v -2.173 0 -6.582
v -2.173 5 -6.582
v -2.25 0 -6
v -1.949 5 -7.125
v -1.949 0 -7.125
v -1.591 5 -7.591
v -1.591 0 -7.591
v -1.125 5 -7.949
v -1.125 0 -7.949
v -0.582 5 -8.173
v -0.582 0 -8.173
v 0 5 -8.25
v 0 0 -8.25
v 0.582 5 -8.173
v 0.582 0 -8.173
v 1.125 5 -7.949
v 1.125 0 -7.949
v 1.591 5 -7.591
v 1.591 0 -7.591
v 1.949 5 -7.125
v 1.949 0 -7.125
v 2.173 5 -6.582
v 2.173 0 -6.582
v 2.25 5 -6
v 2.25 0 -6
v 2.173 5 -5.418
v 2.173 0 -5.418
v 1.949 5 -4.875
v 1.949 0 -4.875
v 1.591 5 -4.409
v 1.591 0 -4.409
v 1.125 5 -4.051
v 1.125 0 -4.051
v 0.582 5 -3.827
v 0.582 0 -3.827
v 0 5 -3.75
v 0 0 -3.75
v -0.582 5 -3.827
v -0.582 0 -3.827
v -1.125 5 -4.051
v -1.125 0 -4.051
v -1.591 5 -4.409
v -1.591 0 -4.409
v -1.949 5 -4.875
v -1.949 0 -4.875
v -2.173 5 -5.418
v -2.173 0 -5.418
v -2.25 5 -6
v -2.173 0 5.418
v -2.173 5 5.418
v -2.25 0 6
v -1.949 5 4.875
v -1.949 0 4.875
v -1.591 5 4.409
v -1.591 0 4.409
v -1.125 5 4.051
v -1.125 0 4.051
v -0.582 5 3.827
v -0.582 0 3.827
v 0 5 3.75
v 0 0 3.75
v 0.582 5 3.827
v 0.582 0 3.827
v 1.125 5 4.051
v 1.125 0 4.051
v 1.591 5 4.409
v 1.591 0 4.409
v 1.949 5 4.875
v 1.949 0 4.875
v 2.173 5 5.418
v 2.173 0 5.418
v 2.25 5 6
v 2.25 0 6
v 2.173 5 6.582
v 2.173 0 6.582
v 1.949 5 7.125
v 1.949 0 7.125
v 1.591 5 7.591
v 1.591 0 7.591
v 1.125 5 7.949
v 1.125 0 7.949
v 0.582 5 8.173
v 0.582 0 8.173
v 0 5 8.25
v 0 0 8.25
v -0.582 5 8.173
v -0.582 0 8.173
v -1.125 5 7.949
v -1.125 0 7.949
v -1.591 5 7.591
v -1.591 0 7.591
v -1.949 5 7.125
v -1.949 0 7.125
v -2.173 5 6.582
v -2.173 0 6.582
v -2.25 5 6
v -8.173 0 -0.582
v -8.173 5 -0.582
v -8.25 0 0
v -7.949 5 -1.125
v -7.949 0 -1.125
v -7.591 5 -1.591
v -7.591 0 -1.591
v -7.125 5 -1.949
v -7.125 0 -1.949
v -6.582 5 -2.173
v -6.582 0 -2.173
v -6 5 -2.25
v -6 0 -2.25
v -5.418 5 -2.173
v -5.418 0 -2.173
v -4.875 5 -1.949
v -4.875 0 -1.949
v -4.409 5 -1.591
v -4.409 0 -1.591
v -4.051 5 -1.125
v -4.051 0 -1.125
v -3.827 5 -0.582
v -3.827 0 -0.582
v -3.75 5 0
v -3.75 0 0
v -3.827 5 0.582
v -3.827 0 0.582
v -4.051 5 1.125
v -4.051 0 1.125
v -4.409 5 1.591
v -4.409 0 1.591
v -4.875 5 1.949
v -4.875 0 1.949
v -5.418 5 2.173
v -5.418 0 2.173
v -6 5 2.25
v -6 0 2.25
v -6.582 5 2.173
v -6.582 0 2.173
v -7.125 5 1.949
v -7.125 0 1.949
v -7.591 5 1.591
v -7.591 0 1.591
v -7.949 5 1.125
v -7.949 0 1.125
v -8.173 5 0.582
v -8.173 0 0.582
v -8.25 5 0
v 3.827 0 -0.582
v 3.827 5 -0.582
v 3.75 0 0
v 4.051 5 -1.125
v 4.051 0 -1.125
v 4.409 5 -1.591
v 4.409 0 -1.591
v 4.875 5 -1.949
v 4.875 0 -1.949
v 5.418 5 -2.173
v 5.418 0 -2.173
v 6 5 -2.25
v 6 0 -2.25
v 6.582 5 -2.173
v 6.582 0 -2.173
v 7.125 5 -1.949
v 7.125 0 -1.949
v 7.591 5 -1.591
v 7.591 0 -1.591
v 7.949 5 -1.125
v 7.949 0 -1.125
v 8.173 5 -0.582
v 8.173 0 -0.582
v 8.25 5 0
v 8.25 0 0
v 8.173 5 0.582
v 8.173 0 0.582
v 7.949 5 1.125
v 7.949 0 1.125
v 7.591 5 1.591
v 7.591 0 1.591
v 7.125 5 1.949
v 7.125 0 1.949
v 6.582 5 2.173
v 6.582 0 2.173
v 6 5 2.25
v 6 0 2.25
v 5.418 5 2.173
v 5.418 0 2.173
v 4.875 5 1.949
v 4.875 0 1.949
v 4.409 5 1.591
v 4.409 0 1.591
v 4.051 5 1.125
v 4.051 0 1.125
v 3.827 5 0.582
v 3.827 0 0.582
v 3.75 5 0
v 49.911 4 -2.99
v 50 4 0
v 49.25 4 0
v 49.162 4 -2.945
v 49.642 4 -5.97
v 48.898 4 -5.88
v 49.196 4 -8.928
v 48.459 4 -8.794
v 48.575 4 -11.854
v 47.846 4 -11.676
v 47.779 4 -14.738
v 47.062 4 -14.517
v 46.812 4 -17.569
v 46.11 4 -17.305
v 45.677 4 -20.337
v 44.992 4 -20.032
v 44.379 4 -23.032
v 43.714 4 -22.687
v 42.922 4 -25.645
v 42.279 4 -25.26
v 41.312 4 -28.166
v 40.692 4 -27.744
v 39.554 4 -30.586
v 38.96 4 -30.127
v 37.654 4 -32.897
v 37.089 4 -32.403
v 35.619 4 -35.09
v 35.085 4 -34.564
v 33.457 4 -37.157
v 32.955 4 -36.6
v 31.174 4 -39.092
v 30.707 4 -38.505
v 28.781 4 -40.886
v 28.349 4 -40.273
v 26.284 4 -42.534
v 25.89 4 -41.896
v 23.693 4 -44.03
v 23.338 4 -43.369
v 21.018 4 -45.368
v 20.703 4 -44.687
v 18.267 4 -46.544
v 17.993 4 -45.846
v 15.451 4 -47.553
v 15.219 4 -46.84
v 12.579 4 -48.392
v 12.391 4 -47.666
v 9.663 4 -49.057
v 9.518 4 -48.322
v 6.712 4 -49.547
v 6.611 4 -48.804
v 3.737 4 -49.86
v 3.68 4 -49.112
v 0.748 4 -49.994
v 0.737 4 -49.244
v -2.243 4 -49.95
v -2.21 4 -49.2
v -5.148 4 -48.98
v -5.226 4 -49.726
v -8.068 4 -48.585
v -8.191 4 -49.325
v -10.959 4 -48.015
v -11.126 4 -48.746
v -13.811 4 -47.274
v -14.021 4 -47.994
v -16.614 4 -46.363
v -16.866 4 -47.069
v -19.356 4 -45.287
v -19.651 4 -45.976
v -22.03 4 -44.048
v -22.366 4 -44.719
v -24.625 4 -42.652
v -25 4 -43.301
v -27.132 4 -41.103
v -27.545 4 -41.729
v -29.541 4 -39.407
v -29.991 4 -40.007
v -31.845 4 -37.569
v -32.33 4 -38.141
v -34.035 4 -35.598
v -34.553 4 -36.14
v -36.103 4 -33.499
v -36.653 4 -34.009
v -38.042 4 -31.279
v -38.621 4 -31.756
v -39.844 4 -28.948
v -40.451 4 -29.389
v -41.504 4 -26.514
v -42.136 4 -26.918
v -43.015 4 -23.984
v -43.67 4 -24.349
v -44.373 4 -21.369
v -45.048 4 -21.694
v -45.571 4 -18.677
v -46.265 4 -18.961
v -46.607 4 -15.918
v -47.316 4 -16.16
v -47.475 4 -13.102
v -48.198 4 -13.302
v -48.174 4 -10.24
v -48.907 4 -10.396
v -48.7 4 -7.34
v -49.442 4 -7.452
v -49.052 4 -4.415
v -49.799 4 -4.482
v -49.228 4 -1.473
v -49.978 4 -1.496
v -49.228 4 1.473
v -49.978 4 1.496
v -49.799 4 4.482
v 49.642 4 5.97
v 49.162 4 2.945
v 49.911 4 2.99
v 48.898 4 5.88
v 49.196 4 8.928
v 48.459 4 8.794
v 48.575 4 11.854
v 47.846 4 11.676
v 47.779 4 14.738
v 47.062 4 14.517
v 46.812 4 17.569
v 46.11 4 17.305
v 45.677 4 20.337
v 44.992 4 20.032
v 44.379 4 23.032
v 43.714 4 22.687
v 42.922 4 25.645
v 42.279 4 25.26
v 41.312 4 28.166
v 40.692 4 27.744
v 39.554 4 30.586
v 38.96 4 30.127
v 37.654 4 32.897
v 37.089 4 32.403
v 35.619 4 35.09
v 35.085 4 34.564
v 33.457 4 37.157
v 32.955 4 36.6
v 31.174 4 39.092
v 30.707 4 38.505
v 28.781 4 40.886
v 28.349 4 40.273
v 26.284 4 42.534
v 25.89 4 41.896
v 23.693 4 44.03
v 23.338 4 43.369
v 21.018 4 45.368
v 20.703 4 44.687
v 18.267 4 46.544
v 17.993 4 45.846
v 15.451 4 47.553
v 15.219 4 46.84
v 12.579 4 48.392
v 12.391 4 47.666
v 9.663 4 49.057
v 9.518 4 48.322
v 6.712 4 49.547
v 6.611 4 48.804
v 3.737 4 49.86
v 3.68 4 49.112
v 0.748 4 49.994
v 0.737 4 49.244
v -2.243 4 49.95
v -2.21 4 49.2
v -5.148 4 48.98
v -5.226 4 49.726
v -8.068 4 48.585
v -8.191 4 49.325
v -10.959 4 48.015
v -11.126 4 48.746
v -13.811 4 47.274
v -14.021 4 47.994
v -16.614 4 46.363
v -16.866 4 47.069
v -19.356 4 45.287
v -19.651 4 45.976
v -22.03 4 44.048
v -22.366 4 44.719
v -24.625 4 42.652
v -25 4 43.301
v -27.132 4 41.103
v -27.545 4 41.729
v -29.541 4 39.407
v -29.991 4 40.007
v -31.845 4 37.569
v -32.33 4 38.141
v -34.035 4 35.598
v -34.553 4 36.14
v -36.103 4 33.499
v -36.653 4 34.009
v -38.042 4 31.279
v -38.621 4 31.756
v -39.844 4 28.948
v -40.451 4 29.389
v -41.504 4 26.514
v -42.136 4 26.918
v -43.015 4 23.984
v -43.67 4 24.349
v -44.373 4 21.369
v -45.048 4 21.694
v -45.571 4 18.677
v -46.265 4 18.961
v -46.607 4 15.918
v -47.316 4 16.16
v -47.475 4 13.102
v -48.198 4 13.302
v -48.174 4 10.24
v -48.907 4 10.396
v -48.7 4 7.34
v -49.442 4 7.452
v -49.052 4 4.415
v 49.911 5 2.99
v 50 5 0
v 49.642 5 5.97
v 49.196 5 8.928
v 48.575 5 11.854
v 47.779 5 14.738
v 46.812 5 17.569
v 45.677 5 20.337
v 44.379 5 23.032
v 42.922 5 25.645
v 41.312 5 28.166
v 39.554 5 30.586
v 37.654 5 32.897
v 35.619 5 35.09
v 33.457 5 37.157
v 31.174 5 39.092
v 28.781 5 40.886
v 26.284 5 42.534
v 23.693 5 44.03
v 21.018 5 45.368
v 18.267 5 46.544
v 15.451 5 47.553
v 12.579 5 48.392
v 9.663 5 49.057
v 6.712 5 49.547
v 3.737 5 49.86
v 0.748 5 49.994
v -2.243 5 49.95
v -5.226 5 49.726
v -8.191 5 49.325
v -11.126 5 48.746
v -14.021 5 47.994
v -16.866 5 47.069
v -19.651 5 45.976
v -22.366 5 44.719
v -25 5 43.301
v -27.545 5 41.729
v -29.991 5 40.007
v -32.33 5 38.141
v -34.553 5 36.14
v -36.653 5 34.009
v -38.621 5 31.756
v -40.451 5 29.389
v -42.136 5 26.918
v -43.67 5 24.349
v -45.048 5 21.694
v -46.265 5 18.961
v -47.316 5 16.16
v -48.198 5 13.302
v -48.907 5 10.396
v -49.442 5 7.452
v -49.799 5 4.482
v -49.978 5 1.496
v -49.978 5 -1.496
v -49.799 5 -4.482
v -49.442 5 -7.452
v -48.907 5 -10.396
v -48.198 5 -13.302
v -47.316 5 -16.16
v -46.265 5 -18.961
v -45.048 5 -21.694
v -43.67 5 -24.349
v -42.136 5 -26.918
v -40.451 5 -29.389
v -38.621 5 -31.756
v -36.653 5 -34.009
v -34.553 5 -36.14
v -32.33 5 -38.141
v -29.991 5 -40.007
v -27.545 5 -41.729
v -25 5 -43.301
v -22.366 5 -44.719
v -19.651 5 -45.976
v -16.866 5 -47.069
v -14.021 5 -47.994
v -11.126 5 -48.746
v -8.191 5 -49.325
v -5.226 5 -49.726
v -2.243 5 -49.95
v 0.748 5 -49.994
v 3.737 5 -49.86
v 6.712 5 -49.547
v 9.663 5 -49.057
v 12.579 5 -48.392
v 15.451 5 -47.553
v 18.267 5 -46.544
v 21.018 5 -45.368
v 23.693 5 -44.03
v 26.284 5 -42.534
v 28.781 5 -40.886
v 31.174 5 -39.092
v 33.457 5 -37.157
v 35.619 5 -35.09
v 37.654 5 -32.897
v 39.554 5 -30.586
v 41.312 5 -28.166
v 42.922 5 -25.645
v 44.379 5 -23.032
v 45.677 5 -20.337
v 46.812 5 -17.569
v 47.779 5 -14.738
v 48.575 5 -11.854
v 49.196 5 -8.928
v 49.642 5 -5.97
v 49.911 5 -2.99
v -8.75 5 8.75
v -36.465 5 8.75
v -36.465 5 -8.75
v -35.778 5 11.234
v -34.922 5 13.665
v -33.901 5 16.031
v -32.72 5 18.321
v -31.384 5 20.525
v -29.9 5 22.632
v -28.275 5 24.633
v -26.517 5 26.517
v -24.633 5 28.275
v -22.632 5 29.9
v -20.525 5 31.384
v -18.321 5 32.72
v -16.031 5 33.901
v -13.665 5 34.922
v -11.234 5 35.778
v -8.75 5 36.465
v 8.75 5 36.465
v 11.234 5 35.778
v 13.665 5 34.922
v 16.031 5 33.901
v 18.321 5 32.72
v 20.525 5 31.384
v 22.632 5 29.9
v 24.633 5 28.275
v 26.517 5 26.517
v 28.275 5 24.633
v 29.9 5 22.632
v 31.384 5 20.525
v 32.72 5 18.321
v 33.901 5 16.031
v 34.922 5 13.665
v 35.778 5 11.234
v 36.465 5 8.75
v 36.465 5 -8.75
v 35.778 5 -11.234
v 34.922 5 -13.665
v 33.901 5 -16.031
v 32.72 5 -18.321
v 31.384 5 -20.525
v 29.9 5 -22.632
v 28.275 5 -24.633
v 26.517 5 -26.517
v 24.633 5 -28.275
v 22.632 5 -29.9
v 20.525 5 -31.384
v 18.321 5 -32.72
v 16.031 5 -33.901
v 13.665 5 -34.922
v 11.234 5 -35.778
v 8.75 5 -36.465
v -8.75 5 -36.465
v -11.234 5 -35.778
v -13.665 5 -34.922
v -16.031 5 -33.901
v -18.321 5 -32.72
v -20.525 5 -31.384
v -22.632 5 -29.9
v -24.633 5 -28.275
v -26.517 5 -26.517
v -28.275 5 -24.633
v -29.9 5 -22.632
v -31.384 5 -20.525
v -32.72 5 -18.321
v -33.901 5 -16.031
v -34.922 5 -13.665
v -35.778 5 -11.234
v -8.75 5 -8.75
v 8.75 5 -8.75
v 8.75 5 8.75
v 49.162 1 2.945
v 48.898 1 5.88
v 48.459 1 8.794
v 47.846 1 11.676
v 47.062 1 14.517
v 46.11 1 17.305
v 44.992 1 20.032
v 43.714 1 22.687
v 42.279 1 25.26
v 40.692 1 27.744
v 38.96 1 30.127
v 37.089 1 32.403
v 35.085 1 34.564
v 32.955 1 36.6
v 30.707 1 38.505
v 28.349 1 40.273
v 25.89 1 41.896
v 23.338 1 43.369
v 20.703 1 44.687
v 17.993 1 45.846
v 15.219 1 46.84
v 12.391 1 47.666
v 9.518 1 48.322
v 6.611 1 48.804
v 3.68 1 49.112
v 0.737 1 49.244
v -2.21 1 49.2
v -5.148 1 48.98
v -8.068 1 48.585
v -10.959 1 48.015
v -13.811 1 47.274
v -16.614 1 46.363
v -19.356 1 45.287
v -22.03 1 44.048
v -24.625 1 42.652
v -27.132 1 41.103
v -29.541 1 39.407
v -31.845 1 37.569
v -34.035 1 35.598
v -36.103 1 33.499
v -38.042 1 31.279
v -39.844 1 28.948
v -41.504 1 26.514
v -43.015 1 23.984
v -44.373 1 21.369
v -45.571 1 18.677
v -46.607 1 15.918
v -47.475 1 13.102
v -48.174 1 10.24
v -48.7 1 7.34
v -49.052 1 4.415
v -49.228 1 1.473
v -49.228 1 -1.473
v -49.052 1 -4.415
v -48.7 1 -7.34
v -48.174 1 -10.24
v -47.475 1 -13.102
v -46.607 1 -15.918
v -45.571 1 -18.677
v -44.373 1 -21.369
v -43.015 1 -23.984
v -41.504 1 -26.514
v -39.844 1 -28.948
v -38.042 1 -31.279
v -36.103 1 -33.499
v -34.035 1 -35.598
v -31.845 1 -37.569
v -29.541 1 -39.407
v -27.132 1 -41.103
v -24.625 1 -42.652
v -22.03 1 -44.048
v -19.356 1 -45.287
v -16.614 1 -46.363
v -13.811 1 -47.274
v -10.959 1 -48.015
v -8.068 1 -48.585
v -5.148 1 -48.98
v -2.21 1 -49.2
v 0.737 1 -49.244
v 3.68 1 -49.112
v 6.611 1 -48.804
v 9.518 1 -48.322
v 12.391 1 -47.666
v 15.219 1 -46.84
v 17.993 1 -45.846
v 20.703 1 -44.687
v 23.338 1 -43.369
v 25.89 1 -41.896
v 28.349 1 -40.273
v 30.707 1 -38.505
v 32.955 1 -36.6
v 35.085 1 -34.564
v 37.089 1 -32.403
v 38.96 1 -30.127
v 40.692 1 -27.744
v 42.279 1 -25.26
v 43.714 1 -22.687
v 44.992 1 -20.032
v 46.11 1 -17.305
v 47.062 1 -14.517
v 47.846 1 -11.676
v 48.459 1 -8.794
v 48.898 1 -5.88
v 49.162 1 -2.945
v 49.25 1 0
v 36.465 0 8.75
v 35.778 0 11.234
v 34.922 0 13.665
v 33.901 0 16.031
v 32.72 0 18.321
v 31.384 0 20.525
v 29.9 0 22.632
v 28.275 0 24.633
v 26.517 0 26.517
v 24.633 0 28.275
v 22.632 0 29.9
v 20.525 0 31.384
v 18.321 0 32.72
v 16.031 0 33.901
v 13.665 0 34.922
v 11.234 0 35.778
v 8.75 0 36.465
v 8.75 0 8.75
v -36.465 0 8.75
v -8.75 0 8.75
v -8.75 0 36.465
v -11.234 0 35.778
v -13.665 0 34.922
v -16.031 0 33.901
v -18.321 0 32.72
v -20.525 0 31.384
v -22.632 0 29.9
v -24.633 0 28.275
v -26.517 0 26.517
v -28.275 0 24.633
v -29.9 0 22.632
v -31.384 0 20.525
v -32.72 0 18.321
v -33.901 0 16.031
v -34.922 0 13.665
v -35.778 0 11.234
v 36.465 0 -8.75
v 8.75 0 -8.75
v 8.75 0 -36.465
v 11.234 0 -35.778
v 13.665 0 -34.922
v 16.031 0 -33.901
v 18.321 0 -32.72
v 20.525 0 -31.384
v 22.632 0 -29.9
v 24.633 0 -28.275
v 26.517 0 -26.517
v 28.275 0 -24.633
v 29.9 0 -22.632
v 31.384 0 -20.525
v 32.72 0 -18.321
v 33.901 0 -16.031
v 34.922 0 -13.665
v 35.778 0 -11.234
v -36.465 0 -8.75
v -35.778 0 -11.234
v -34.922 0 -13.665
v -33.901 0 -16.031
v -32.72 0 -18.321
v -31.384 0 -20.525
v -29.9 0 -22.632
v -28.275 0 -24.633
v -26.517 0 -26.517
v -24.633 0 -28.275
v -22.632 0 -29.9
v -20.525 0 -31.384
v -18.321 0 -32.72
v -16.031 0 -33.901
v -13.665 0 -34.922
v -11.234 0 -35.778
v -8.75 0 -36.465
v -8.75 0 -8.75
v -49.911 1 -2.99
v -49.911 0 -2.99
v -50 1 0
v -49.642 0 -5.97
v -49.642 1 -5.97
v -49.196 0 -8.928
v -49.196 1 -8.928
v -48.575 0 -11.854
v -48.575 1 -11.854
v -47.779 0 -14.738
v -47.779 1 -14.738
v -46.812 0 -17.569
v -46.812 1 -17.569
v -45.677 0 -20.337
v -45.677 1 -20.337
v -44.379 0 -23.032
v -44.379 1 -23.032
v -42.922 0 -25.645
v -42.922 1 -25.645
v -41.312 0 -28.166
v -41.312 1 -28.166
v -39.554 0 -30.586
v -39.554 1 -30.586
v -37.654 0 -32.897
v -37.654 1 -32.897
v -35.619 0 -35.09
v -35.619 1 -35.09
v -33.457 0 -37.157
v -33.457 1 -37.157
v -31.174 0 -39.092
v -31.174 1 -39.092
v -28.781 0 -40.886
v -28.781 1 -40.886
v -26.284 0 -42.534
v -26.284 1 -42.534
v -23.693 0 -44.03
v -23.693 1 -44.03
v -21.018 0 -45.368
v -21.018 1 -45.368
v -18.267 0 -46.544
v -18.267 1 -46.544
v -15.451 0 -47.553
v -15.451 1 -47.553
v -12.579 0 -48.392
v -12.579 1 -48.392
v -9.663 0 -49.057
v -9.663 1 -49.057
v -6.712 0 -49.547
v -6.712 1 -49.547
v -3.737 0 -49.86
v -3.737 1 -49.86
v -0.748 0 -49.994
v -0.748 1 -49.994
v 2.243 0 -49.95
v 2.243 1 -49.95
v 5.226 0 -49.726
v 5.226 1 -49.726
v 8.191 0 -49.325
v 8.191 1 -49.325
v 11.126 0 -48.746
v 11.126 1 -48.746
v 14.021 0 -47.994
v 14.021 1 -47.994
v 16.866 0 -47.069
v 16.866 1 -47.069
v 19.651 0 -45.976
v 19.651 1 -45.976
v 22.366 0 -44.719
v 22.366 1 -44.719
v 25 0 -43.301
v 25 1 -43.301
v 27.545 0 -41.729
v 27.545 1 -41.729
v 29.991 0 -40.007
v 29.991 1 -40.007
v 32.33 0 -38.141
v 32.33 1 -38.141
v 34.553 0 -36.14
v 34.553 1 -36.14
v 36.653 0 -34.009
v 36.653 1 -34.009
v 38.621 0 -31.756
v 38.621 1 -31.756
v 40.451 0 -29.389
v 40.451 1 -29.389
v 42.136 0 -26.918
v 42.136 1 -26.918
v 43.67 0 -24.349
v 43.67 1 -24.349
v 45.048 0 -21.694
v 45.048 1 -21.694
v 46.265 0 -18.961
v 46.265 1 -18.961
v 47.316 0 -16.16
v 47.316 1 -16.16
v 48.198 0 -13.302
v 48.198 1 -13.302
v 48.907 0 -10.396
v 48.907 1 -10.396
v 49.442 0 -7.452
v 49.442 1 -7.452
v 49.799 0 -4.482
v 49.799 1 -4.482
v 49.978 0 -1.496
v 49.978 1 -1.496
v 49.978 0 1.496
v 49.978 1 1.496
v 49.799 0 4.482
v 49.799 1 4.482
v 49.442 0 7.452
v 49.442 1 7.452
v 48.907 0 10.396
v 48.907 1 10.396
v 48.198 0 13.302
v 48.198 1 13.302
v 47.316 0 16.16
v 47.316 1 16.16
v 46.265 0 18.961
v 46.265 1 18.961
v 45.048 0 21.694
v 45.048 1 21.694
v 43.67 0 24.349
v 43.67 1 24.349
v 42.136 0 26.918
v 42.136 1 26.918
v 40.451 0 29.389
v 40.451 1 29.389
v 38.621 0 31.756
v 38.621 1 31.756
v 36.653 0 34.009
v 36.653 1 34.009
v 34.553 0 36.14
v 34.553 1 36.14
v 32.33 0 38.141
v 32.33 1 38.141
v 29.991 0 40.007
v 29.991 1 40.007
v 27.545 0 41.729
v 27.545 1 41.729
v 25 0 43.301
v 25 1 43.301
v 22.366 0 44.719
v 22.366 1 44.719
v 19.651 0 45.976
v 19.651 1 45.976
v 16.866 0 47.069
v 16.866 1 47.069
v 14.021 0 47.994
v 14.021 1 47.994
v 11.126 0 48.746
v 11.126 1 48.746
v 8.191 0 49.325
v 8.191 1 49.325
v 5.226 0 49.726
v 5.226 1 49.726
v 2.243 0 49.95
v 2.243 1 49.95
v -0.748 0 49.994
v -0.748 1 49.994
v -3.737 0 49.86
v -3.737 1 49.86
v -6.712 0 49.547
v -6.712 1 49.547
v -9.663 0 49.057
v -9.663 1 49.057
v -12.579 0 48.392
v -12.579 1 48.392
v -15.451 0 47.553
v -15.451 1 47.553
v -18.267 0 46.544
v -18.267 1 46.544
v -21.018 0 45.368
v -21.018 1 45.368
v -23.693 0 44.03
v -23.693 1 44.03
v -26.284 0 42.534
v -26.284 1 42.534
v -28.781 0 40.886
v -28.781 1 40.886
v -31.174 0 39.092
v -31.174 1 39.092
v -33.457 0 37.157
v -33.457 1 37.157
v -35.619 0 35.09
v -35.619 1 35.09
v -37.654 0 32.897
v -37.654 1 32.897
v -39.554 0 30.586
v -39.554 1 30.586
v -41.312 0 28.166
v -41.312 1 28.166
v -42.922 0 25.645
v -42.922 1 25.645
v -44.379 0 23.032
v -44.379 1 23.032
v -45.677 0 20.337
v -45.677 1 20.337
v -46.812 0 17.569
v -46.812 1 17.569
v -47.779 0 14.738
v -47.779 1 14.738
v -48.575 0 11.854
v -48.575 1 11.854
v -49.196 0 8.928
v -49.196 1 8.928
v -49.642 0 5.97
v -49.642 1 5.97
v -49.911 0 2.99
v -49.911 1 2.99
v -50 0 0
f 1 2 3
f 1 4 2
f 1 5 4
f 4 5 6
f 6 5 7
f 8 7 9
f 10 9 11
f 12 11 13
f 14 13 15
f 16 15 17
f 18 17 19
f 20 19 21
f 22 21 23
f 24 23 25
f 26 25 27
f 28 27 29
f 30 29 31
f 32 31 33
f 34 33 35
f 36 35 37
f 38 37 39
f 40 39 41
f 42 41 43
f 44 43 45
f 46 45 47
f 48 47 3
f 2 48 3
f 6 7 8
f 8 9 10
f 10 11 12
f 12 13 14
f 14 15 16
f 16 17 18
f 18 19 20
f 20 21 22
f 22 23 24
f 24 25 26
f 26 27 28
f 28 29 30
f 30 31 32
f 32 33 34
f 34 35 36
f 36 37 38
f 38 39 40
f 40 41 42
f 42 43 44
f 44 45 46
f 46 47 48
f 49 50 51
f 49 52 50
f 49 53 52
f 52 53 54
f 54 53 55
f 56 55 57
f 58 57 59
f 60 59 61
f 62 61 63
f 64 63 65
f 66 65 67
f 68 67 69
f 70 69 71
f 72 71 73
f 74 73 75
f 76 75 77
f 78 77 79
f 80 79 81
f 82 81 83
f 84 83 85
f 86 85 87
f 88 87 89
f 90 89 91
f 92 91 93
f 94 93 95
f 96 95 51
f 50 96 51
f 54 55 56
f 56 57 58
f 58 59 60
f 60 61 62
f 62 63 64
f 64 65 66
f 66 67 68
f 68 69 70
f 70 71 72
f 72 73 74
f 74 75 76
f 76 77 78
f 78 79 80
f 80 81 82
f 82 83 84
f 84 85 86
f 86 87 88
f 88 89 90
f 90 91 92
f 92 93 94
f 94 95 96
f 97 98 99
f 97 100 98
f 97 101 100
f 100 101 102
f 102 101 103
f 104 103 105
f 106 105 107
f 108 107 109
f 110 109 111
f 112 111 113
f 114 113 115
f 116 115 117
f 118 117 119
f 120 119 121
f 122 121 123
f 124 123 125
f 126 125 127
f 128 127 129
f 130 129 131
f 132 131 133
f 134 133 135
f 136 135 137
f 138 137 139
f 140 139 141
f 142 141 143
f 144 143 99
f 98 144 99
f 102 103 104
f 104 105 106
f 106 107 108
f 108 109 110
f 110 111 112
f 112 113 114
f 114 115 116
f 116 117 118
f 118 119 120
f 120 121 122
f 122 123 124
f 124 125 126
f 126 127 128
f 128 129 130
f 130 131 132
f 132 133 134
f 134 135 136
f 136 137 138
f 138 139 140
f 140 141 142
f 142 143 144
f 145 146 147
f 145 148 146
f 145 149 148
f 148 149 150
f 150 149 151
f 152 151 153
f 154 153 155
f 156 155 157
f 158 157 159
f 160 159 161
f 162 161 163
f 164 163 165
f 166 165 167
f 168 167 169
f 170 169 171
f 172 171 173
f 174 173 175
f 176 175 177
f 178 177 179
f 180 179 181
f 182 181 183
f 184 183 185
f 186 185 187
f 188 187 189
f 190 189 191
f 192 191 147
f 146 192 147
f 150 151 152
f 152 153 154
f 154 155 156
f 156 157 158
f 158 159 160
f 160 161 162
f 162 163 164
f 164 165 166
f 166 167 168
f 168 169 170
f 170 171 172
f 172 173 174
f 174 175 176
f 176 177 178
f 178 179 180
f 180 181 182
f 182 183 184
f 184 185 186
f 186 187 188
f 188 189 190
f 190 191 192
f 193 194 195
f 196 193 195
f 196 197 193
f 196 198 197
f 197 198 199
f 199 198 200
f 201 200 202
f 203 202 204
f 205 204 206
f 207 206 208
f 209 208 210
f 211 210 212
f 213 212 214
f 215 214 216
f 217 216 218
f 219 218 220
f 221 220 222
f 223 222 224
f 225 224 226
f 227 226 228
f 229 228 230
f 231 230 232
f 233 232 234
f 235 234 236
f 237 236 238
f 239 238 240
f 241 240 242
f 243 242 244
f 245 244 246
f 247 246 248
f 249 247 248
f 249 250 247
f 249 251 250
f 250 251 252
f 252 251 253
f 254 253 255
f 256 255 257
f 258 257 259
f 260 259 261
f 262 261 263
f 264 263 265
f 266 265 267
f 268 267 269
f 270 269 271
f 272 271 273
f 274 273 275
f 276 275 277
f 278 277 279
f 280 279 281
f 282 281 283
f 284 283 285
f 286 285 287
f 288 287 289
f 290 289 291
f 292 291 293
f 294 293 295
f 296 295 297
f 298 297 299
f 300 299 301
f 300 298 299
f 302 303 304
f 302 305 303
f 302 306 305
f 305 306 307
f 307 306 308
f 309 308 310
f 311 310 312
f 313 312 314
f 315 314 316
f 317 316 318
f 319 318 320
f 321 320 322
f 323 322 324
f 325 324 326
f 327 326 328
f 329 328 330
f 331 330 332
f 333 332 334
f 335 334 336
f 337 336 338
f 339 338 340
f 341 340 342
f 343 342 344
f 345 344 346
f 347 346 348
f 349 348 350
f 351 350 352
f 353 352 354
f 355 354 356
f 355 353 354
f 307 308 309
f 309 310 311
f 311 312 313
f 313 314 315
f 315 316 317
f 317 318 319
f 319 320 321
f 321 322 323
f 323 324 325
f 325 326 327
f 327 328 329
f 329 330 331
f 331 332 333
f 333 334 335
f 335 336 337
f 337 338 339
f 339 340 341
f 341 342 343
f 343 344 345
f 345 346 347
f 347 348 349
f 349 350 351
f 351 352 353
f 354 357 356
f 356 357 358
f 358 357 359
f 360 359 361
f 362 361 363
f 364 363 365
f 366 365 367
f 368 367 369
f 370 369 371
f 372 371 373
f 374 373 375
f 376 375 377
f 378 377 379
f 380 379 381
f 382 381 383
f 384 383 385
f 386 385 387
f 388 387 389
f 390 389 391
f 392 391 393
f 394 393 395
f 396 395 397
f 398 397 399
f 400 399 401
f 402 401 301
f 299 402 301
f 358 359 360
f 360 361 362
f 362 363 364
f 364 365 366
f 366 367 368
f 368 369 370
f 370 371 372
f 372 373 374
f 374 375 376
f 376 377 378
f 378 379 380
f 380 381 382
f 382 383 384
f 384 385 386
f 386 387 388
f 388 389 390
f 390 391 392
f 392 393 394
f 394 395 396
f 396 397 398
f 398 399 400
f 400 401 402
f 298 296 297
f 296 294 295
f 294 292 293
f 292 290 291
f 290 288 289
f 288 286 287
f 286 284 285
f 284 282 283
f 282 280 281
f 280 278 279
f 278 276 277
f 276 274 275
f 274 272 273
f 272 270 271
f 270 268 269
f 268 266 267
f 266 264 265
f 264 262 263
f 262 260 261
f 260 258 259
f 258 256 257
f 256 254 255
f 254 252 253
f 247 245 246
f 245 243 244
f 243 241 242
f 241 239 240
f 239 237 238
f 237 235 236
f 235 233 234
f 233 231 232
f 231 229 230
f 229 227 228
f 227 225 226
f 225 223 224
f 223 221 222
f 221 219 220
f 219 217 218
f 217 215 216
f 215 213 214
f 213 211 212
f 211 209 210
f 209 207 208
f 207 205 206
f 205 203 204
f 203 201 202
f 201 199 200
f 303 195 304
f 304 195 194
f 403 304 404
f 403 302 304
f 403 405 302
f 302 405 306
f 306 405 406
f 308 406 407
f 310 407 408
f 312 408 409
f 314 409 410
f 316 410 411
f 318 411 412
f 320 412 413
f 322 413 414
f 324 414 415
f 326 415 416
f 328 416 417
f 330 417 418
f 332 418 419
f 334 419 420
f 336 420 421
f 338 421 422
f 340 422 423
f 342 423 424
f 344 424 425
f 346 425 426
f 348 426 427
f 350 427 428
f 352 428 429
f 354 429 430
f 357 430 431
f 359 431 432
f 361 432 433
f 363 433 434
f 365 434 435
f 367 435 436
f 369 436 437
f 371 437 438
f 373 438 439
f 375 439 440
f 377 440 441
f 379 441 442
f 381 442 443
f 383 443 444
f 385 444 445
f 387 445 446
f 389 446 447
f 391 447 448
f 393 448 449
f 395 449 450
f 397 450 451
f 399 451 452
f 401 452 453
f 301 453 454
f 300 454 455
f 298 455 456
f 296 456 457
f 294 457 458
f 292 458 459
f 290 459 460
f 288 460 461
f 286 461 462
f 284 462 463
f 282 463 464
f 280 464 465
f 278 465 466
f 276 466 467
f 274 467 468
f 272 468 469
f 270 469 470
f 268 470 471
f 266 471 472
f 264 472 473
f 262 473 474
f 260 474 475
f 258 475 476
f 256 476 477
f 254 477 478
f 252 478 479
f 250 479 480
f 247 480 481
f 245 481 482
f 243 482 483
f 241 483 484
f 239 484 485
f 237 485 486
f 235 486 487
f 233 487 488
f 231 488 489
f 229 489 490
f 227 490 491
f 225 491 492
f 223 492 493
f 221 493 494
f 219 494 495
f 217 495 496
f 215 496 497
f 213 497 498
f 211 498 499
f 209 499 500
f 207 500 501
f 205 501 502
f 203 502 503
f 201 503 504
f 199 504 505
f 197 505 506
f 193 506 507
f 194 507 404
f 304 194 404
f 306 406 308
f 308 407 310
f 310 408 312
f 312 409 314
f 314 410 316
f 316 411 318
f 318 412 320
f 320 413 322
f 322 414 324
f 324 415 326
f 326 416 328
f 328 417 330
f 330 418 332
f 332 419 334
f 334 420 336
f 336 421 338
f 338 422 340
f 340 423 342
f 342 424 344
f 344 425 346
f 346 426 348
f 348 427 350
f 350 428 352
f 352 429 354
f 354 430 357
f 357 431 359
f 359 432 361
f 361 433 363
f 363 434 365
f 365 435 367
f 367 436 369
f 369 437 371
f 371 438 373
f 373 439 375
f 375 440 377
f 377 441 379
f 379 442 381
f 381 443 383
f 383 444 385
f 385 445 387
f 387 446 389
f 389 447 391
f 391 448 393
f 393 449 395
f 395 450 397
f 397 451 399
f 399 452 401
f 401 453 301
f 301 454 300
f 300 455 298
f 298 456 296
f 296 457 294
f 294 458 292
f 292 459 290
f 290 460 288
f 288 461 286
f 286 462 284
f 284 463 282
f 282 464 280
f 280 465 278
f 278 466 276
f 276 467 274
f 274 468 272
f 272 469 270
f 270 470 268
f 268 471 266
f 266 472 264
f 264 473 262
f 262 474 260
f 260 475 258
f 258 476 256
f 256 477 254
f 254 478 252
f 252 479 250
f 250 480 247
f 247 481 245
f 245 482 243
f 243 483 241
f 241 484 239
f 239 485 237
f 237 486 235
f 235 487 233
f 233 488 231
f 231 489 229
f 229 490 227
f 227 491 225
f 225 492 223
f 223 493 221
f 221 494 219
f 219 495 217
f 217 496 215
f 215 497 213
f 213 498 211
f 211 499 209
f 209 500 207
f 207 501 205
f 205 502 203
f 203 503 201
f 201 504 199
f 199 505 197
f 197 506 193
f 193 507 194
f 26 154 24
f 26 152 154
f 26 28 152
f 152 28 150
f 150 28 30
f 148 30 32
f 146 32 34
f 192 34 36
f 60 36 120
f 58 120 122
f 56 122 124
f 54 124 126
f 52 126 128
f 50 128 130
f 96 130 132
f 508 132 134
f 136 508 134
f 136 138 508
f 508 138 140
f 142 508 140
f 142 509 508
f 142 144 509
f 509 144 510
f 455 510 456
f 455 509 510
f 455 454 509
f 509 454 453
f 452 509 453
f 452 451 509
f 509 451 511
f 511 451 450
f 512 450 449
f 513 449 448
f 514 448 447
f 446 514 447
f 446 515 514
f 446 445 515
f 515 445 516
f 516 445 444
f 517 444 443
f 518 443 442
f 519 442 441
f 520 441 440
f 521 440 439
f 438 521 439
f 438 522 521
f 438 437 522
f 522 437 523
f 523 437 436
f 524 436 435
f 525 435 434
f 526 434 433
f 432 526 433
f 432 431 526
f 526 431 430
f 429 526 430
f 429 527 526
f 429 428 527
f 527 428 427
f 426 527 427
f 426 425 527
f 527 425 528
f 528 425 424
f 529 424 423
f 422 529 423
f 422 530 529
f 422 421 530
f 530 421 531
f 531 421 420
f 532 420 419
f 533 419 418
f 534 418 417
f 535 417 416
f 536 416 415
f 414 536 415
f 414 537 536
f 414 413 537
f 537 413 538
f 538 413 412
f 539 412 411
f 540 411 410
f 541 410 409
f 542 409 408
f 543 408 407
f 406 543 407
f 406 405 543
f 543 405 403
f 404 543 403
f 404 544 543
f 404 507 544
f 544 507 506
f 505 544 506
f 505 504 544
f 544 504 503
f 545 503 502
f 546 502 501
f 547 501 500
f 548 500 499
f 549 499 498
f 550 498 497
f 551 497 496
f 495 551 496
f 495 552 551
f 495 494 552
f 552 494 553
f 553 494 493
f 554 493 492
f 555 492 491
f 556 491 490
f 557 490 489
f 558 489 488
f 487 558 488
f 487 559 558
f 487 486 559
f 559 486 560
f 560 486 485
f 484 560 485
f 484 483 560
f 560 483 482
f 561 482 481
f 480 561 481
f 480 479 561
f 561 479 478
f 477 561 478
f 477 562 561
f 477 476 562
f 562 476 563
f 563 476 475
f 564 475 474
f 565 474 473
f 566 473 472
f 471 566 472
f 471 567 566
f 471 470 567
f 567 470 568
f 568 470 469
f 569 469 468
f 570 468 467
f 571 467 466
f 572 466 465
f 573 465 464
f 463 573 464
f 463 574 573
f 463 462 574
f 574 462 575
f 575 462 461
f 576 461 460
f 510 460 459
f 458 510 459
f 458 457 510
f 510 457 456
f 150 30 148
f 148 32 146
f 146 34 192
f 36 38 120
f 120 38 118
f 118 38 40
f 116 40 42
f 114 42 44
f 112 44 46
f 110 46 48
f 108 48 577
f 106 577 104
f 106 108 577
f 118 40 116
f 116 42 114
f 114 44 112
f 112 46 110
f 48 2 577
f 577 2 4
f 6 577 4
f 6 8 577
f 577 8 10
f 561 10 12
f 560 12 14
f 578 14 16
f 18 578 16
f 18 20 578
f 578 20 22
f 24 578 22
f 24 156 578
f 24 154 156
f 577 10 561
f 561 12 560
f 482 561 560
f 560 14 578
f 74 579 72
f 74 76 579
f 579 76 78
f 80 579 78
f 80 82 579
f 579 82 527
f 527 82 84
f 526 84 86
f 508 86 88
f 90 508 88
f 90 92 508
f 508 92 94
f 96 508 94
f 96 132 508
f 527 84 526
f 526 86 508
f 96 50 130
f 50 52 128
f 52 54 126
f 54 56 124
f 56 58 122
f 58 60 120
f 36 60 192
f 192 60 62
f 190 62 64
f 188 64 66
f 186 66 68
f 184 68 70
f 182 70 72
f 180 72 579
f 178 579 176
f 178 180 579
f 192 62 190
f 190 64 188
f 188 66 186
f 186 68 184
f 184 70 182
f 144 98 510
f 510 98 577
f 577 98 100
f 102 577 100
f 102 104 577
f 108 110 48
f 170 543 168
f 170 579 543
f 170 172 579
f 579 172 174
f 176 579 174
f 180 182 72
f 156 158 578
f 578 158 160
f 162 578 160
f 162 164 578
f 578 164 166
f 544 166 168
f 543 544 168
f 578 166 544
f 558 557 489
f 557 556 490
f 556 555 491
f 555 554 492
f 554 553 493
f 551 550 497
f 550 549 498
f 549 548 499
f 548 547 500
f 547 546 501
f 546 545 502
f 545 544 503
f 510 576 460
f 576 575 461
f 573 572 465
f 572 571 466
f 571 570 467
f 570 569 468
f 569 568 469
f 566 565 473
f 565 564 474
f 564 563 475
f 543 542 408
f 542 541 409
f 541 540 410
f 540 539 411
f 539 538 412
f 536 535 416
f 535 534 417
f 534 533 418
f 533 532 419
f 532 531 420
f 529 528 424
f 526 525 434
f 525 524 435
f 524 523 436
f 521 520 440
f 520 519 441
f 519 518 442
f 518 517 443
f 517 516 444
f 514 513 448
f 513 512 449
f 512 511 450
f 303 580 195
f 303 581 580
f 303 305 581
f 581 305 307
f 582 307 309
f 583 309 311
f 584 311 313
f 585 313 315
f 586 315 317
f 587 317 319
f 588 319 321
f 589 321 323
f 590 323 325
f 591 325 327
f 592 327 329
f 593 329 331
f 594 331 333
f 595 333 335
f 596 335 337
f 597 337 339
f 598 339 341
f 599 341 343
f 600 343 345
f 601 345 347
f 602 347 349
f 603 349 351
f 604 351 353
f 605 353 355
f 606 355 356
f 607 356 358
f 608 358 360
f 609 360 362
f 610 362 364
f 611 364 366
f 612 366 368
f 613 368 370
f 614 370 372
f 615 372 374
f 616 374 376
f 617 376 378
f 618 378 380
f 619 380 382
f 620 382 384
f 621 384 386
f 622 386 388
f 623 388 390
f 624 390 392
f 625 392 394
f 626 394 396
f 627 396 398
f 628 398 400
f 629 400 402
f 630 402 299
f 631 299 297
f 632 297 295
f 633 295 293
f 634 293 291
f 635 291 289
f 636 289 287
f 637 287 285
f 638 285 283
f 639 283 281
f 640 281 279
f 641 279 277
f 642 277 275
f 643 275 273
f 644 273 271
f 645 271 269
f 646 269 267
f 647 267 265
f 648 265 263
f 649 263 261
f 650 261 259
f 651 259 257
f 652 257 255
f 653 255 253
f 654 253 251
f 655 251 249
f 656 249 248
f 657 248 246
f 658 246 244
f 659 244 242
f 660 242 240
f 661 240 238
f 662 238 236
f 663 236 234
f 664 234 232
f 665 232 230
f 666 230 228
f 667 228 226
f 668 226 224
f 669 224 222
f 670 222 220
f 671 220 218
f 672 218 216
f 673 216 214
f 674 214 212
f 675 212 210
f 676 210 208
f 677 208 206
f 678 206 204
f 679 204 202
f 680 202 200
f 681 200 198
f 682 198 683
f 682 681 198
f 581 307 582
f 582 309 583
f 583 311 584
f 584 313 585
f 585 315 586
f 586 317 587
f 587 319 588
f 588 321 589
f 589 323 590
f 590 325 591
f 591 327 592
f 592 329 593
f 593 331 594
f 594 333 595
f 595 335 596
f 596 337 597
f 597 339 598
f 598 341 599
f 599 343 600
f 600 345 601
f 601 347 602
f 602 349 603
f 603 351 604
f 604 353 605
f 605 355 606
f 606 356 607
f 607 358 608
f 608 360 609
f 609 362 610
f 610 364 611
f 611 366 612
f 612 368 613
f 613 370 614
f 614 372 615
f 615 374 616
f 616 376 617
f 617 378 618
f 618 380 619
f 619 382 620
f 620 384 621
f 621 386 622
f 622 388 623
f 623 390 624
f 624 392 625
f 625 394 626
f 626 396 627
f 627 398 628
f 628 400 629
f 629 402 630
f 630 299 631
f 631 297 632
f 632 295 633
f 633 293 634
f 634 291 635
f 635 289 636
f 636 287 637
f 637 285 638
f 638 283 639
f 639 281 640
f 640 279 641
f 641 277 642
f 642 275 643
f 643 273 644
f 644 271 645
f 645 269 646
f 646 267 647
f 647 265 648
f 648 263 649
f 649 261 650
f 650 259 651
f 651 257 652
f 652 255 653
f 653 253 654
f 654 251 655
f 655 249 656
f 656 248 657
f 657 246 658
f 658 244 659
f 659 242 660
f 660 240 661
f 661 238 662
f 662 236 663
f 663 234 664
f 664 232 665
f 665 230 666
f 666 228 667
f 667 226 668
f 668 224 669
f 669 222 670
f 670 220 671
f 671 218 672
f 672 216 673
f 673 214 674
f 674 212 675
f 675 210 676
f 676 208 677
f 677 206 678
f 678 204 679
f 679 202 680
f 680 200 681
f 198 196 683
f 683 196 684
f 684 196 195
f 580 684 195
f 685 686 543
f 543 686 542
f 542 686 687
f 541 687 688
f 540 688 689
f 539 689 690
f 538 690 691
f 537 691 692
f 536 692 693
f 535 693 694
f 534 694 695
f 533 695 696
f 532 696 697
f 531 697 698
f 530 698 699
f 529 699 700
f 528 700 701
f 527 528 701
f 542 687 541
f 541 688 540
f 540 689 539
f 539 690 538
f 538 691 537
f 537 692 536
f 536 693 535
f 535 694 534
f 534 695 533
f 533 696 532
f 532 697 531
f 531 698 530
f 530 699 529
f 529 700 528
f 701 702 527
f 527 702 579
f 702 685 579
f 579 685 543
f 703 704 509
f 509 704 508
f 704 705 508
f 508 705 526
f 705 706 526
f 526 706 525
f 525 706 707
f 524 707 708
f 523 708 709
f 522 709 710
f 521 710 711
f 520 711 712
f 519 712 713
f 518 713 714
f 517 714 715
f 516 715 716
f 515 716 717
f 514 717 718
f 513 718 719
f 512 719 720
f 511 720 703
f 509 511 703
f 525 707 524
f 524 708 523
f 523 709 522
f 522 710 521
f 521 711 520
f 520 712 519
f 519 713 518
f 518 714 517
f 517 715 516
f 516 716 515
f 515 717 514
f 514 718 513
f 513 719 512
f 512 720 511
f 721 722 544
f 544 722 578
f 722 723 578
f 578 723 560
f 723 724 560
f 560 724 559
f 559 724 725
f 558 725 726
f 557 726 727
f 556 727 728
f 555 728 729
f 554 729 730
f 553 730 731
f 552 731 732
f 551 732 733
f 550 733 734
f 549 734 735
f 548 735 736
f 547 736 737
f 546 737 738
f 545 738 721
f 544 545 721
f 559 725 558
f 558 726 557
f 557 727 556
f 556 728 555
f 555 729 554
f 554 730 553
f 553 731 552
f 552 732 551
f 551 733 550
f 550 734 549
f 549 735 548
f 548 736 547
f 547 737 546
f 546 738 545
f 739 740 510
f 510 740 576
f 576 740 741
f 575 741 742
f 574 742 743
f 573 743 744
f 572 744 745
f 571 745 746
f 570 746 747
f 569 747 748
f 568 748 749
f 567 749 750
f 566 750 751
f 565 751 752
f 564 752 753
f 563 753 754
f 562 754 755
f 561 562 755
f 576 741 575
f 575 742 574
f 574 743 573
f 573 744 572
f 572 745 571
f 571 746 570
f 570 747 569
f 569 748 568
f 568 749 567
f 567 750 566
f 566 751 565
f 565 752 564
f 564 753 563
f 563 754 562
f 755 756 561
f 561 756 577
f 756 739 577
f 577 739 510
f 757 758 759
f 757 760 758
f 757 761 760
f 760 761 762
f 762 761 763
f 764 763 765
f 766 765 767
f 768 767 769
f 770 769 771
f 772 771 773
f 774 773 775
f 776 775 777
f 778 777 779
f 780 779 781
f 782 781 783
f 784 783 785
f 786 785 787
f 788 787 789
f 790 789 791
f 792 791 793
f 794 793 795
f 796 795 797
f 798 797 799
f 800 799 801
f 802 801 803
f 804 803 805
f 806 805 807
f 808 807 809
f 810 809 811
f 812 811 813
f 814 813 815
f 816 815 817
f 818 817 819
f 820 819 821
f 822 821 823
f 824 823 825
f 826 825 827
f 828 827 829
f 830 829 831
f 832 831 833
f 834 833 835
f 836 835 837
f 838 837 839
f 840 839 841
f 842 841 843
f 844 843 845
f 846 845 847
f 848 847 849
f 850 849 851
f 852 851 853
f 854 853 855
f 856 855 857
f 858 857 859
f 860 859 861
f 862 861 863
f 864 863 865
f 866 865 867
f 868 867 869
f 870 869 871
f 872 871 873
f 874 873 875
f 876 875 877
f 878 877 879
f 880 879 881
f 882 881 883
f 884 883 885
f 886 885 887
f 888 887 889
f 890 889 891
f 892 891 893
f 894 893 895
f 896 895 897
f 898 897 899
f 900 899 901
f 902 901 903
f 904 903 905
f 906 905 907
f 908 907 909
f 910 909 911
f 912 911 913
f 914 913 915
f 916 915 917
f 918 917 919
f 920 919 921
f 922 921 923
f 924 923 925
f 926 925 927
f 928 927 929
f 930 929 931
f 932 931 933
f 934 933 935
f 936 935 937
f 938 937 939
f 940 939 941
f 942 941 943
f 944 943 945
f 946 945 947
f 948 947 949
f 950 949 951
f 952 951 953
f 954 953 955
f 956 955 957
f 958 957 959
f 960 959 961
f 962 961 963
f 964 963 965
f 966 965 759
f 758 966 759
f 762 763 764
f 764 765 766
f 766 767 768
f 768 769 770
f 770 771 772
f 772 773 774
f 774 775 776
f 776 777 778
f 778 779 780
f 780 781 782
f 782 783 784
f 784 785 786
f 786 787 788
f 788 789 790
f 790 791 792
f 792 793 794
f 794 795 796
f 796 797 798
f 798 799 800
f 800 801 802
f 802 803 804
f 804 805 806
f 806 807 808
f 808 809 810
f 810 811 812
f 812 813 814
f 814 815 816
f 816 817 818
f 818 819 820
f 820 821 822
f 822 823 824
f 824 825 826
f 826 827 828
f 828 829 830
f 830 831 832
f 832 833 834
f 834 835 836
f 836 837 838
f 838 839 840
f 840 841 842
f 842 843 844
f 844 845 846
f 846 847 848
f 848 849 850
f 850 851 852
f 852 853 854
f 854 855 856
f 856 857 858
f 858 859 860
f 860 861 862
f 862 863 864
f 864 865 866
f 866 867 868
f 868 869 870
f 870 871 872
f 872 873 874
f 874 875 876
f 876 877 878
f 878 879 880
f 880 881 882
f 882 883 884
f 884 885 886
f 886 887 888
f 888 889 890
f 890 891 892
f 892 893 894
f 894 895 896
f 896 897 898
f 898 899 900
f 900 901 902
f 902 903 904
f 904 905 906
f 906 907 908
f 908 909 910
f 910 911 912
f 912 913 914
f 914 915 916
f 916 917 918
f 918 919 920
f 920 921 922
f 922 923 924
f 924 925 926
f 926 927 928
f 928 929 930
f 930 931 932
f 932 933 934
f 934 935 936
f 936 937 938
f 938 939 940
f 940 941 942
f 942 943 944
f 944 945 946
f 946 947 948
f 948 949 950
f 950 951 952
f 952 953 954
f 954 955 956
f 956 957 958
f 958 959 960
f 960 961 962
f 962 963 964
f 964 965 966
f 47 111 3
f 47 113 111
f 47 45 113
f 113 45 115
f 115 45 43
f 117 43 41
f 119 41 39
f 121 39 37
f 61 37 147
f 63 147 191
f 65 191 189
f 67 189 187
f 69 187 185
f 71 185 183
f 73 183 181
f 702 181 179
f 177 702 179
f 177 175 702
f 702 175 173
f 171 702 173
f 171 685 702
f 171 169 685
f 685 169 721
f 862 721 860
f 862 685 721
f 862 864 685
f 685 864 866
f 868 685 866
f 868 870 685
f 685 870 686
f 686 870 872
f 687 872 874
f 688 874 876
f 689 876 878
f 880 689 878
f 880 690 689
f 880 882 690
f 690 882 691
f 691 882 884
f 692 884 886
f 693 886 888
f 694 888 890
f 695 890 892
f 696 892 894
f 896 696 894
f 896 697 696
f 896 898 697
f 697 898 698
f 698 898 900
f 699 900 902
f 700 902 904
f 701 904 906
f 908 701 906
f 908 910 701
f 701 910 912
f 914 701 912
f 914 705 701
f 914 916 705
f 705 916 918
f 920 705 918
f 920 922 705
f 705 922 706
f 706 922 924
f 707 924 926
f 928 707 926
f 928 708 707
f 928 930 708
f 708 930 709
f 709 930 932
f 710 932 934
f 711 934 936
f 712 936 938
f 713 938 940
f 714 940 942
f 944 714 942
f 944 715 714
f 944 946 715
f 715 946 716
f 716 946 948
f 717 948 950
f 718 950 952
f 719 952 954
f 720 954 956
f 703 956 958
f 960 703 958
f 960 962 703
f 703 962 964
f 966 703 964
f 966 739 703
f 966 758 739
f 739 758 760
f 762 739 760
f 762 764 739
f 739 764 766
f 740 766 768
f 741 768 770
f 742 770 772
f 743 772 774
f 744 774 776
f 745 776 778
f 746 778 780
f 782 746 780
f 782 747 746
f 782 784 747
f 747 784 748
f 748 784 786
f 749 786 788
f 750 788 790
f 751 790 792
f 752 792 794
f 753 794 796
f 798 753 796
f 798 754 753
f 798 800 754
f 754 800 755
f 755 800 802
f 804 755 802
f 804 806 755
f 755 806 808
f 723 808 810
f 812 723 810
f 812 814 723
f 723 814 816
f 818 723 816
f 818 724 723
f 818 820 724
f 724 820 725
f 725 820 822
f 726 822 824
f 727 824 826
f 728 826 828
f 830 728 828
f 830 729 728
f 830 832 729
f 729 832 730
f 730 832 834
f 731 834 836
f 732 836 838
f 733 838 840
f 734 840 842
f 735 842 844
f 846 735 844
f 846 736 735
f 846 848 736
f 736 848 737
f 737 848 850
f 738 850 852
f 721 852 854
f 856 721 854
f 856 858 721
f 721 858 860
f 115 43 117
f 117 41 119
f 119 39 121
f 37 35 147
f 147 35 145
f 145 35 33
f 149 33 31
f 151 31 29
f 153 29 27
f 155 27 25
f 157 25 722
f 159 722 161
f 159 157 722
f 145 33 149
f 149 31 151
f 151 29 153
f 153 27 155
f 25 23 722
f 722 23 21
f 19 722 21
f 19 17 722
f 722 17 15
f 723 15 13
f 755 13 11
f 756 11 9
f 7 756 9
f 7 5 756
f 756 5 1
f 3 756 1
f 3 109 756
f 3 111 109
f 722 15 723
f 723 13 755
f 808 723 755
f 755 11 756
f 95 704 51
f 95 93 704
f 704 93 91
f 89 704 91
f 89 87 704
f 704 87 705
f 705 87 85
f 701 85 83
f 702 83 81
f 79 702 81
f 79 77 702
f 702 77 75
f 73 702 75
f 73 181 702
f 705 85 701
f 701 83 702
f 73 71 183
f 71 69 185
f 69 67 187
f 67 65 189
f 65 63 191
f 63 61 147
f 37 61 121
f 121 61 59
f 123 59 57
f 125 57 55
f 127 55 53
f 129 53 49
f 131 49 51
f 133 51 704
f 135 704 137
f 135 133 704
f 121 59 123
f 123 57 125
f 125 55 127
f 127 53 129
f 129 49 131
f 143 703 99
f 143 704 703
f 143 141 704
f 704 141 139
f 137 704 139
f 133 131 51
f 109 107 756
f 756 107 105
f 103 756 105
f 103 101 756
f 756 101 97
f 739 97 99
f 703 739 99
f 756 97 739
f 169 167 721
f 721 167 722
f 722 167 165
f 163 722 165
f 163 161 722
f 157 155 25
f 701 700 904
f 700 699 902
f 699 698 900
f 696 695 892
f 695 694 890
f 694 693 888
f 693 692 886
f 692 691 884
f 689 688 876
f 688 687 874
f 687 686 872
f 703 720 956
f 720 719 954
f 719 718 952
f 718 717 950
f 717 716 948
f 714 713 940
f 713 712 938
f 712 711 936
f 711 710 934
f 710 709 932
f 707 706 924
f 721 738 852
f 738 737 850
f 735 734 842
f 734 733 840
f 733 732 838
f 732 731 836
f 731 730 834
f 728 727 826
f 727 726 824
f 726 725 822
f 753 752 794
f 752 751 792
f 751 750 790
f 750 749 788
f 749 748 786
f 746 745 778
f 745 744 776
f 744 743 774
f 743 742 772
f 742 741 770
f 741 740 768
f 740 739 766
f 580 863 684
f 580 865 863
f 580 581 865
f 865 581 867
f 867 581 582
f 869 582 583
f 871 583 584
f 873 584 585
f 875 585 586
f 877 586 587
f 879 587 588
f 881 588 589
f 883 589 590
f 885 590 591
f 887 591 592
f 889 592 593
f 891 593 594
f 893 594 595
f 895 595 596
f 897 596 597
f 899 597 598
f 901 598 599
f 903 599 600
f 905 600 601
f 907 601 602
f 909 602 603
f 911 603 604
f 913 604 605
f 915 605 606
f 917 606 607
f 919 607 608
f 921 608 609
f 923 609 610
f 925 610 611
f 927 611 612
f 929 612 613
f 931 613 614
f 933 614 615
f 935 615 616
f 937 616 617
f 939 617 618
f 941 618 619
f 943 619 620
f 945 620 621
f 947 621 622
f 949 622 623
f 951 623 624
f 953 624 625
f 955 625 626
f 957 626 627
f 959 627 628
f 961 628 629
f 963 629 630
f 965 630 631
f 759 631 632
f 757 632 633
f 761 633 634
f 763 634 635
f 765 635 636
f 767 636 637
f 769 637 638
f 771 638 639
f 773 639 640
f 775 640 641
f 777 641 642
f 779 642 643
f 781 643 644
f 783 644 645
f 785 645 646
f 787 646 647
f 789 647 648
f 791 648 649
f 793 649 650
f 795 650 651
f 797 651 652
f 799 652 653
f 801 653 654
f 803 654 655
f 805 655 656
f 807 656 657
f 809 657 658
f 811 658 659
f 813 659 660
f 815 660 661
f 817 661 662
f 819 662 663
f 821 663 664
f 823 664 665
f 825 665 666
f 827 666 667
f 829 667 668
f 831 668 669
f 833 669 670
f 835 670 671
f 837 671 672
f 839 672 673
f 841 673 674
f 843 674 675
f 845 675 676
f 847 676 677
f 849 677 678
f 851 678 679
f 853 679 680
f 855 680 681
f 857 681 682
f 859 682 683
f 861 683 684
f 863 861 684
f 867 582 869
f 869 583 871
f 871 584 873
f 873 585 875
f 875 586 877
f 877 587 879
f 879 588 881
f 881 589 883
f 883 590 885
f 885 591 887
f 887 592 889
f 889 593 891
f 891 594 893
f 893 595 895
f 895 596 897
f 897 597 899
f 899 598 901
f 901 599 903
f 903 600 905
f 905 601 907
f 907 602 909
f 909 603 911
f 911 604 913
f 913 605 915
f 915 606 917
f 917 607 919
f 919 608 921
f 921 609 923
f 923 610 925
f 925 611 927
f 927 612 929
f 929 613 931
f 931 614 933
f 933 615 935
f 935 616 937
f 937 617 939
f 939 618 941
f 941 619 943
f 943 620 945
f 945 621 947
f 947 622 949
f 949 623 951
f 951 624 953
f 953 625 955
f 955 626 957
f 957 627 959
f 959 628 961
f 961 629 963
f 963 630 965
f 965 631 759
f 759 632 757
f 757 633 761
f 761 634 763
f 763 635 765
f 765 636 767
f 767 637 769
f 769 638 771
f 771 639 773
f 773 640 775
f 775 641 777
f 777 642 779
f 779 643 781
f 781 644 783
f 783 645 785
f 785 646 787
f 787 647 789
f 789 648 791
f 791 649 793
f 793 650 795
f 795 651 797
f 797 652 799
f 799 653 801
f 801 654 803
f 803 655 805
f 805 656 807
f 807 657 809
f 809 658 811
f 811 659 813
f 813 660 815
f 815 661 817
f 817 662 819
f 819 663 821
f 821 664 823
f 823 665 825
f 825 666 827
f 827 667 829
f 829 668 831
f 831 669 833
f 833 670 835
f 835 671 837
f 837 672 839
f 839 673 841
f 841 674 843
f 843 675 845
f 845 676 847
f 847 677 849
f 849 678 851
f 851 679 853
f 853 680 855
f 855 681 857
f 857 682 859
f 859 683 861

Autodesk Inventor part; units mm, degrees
ref_plane "YZ Plane" through (0, 0, 0) normal (1, 0, 0) x (0, 1, 0)
ref_plane "XZ Plane" through (0, 0, 0) normal (0, 1, 0) x (-1, 0, 0)
ref_plane "XY Plane" through (0, 0, 0) normal (0, 0, 1) x (1, 0, 0)
sketch "Sketch1" plane through (0, 0, 0) normal (0, 1, 0) x (-1, 0, 0)
  circle A0 centre (0, 0) radius 50
  circle A1 centre (0, 0) radius 37.5
  circle A2 centre (0, 0) radius 8.75
  line L0 (37.5, 0) -> (42.141, 0) construction
  line L1 (8.75, -8.75) -> (36.4649, -8.75)
  line L2 (-8.75, -8.75) -> (-36.4649, -8.75)
  line L3 (-8.75, -8.75) -> (-8.75, -36.4649)
  line L4 (8.75, -8.75) -> (8.75, -36.4649)
  line L5 (8.75, 8.75) -> (36.4649, 8.75)
  line L6 (-8.75, 8.75) -> (-36.4649, 8.75)
  line L7 (-8.75, 8.75) -> (-8.75, 36.4649)
  line L8 (8.75, 8.75) -> (8.75, 36.4649)
  dimension "d1" = 75
  dimension "d0" = 100
  dimension "d2" = 17.5
extrude "Extrusion1" add sketch "Sketch1" along normal blind 1 contours A0 | A1 L1 L4 L3 L2 L6 L7 L8 L5 | A2
sketch "Sketch6" plane through (0, 1, 0) normal (0, 1, 0) x (1, 0, 0)
  circle A0 centre (0, 0) radius 49.25
  line L0 (-36.4649, -8.75) -> (-8.75, -8.75) projected
  line L1 (-8.6444, -8.75) -> (-36.4649, -8.75)
  arc A1 (-36.4649, -8.75) -> (-8.75, -36.4649) centre (0, 0) ccw projected
  line L2 (-36.4649, -8.75) -> (-36.4649, -8.75)
  line L3 (-8.75, -36.4649) -> (-8.75, -8.75) projected
  line L4 (-8.75, -8.75) -> (-8.75, -36.4649)
  arc A2 (-36.4649, -8.75) -> (-8.75, -36.4649) centre (0, 0) ccw
  line L5 (0, 0) -> (0, -21.0072)
  line L6 (0, 0) -> (-15.0352, 0)
  line L7 (36.4649, -8.75) -> (8.75, -8.75)
  arc A3 (8.75, -36.4649) -> (36.4649, -8.75) centre (0, 0) ccw
  line L8 (8.75, -36.4649) -> (8.75, -8.75)
  line L9 (-36.4649, 8.75) -> (-8.75, 8.75)
  arc A4 (-8.75, 36.4649) -> (-36.4649, 8.75) centre (0, 0) ccw
  line L10 (-8.75, 36.4649) -> (-8.75, 8.75)
  arc A5 (36.4649, 8.75) -> (8.75, 36.4649) centre (0, 0) ccw
  line L11 (36.4649, 8.75) -> (8.75, 8.75)
  line L12 (8.75, 36.4649) -> (8.75, 8.75)
  dimension "d33" = 98.5
extrude "Extrusion3" add sketch "Sketch6" along normal blind 3
sketch "Sketch7" plane through (0, 4, 0) normal (0, 1, 0) x (1, 0, 0)
  circle A0 centre (0, 0) radius 50
  line L0 (-8.75, -36.4649) -> (-8.75, -8.75) projected
  arc A1 (-36.4649, -8.75) -> (-8.75, -36.4649) centre (0, 0) ccw projected
  line L1 (-8.75, -8.75) -> (-36.4649, -8.75)
  line L2 (-8.75, -8.75) -> (-8.75, -36.4649)
  arc A2 (-36.4649, -8.75) -> (-8.75, -36.4649) centre (0, 0) ccw
  line L3 (0, 0) -> (0, -13.8921)
  line L4 (0, 0) -> (-12.1262, 0)
  line L5 (8.75, -36.4649) -> (8.75, -8.75)
  arc A3 (8.75, -36.4649) -> (36.4649, -8.75) centre (0, 0) ccw
  line L6 (8.75, -8.75) -> (36.4649, -8.75)
  line L7 (-8.75, 36.4649) -> (-8.75, 8.75)
  arc A4 (-8.75, 36.4649) -> (-36.4649, 8.75) centre (0, 0) ccw
  line L8 (-8.75, 8.75) -> (-36.4649, 8.75)
  line L9 (8.75, 8.75) -> (36.4649, 8.75)
  arc A5 (36.4649, 8.75) -> (8.75, 36.4649) centre (0, 0) ccw
  line L10 (8.75, 36.4649) -> (8.75, 8.75)
  dimension "d37" = 100
extrude "Extrusion4" add sketch "Sketch7" along normal blind 1
sketch "Sketch8" plane through (0, 5, 0) normal (0, 1, 0) x (1, 0, 0)
  circle A0 centre (0, 6) radius 2.25
  line L0 (0, 0) -> (-6, 0)
  line L1 (0, 0) -> (0, -5.6539)
  circle A1 centre (0, -6) radius 2.25
  circle A2 centre (-6, 0) radius 2.25
  circle A3 centre (6, 0) radius 2.25
  dimension "d40" = 4.5
  dimension "d41" = 6
  dimension "d42" = 4.5
  dimension "d43" = 6
hole "Hole2" at (0, 5, 6) at (-6, 5, 0) at (0, 5, -6) at (6, 5, 0) direction (0, -1, 0) diameter 4.5 end through all
properties part number "wheel"
